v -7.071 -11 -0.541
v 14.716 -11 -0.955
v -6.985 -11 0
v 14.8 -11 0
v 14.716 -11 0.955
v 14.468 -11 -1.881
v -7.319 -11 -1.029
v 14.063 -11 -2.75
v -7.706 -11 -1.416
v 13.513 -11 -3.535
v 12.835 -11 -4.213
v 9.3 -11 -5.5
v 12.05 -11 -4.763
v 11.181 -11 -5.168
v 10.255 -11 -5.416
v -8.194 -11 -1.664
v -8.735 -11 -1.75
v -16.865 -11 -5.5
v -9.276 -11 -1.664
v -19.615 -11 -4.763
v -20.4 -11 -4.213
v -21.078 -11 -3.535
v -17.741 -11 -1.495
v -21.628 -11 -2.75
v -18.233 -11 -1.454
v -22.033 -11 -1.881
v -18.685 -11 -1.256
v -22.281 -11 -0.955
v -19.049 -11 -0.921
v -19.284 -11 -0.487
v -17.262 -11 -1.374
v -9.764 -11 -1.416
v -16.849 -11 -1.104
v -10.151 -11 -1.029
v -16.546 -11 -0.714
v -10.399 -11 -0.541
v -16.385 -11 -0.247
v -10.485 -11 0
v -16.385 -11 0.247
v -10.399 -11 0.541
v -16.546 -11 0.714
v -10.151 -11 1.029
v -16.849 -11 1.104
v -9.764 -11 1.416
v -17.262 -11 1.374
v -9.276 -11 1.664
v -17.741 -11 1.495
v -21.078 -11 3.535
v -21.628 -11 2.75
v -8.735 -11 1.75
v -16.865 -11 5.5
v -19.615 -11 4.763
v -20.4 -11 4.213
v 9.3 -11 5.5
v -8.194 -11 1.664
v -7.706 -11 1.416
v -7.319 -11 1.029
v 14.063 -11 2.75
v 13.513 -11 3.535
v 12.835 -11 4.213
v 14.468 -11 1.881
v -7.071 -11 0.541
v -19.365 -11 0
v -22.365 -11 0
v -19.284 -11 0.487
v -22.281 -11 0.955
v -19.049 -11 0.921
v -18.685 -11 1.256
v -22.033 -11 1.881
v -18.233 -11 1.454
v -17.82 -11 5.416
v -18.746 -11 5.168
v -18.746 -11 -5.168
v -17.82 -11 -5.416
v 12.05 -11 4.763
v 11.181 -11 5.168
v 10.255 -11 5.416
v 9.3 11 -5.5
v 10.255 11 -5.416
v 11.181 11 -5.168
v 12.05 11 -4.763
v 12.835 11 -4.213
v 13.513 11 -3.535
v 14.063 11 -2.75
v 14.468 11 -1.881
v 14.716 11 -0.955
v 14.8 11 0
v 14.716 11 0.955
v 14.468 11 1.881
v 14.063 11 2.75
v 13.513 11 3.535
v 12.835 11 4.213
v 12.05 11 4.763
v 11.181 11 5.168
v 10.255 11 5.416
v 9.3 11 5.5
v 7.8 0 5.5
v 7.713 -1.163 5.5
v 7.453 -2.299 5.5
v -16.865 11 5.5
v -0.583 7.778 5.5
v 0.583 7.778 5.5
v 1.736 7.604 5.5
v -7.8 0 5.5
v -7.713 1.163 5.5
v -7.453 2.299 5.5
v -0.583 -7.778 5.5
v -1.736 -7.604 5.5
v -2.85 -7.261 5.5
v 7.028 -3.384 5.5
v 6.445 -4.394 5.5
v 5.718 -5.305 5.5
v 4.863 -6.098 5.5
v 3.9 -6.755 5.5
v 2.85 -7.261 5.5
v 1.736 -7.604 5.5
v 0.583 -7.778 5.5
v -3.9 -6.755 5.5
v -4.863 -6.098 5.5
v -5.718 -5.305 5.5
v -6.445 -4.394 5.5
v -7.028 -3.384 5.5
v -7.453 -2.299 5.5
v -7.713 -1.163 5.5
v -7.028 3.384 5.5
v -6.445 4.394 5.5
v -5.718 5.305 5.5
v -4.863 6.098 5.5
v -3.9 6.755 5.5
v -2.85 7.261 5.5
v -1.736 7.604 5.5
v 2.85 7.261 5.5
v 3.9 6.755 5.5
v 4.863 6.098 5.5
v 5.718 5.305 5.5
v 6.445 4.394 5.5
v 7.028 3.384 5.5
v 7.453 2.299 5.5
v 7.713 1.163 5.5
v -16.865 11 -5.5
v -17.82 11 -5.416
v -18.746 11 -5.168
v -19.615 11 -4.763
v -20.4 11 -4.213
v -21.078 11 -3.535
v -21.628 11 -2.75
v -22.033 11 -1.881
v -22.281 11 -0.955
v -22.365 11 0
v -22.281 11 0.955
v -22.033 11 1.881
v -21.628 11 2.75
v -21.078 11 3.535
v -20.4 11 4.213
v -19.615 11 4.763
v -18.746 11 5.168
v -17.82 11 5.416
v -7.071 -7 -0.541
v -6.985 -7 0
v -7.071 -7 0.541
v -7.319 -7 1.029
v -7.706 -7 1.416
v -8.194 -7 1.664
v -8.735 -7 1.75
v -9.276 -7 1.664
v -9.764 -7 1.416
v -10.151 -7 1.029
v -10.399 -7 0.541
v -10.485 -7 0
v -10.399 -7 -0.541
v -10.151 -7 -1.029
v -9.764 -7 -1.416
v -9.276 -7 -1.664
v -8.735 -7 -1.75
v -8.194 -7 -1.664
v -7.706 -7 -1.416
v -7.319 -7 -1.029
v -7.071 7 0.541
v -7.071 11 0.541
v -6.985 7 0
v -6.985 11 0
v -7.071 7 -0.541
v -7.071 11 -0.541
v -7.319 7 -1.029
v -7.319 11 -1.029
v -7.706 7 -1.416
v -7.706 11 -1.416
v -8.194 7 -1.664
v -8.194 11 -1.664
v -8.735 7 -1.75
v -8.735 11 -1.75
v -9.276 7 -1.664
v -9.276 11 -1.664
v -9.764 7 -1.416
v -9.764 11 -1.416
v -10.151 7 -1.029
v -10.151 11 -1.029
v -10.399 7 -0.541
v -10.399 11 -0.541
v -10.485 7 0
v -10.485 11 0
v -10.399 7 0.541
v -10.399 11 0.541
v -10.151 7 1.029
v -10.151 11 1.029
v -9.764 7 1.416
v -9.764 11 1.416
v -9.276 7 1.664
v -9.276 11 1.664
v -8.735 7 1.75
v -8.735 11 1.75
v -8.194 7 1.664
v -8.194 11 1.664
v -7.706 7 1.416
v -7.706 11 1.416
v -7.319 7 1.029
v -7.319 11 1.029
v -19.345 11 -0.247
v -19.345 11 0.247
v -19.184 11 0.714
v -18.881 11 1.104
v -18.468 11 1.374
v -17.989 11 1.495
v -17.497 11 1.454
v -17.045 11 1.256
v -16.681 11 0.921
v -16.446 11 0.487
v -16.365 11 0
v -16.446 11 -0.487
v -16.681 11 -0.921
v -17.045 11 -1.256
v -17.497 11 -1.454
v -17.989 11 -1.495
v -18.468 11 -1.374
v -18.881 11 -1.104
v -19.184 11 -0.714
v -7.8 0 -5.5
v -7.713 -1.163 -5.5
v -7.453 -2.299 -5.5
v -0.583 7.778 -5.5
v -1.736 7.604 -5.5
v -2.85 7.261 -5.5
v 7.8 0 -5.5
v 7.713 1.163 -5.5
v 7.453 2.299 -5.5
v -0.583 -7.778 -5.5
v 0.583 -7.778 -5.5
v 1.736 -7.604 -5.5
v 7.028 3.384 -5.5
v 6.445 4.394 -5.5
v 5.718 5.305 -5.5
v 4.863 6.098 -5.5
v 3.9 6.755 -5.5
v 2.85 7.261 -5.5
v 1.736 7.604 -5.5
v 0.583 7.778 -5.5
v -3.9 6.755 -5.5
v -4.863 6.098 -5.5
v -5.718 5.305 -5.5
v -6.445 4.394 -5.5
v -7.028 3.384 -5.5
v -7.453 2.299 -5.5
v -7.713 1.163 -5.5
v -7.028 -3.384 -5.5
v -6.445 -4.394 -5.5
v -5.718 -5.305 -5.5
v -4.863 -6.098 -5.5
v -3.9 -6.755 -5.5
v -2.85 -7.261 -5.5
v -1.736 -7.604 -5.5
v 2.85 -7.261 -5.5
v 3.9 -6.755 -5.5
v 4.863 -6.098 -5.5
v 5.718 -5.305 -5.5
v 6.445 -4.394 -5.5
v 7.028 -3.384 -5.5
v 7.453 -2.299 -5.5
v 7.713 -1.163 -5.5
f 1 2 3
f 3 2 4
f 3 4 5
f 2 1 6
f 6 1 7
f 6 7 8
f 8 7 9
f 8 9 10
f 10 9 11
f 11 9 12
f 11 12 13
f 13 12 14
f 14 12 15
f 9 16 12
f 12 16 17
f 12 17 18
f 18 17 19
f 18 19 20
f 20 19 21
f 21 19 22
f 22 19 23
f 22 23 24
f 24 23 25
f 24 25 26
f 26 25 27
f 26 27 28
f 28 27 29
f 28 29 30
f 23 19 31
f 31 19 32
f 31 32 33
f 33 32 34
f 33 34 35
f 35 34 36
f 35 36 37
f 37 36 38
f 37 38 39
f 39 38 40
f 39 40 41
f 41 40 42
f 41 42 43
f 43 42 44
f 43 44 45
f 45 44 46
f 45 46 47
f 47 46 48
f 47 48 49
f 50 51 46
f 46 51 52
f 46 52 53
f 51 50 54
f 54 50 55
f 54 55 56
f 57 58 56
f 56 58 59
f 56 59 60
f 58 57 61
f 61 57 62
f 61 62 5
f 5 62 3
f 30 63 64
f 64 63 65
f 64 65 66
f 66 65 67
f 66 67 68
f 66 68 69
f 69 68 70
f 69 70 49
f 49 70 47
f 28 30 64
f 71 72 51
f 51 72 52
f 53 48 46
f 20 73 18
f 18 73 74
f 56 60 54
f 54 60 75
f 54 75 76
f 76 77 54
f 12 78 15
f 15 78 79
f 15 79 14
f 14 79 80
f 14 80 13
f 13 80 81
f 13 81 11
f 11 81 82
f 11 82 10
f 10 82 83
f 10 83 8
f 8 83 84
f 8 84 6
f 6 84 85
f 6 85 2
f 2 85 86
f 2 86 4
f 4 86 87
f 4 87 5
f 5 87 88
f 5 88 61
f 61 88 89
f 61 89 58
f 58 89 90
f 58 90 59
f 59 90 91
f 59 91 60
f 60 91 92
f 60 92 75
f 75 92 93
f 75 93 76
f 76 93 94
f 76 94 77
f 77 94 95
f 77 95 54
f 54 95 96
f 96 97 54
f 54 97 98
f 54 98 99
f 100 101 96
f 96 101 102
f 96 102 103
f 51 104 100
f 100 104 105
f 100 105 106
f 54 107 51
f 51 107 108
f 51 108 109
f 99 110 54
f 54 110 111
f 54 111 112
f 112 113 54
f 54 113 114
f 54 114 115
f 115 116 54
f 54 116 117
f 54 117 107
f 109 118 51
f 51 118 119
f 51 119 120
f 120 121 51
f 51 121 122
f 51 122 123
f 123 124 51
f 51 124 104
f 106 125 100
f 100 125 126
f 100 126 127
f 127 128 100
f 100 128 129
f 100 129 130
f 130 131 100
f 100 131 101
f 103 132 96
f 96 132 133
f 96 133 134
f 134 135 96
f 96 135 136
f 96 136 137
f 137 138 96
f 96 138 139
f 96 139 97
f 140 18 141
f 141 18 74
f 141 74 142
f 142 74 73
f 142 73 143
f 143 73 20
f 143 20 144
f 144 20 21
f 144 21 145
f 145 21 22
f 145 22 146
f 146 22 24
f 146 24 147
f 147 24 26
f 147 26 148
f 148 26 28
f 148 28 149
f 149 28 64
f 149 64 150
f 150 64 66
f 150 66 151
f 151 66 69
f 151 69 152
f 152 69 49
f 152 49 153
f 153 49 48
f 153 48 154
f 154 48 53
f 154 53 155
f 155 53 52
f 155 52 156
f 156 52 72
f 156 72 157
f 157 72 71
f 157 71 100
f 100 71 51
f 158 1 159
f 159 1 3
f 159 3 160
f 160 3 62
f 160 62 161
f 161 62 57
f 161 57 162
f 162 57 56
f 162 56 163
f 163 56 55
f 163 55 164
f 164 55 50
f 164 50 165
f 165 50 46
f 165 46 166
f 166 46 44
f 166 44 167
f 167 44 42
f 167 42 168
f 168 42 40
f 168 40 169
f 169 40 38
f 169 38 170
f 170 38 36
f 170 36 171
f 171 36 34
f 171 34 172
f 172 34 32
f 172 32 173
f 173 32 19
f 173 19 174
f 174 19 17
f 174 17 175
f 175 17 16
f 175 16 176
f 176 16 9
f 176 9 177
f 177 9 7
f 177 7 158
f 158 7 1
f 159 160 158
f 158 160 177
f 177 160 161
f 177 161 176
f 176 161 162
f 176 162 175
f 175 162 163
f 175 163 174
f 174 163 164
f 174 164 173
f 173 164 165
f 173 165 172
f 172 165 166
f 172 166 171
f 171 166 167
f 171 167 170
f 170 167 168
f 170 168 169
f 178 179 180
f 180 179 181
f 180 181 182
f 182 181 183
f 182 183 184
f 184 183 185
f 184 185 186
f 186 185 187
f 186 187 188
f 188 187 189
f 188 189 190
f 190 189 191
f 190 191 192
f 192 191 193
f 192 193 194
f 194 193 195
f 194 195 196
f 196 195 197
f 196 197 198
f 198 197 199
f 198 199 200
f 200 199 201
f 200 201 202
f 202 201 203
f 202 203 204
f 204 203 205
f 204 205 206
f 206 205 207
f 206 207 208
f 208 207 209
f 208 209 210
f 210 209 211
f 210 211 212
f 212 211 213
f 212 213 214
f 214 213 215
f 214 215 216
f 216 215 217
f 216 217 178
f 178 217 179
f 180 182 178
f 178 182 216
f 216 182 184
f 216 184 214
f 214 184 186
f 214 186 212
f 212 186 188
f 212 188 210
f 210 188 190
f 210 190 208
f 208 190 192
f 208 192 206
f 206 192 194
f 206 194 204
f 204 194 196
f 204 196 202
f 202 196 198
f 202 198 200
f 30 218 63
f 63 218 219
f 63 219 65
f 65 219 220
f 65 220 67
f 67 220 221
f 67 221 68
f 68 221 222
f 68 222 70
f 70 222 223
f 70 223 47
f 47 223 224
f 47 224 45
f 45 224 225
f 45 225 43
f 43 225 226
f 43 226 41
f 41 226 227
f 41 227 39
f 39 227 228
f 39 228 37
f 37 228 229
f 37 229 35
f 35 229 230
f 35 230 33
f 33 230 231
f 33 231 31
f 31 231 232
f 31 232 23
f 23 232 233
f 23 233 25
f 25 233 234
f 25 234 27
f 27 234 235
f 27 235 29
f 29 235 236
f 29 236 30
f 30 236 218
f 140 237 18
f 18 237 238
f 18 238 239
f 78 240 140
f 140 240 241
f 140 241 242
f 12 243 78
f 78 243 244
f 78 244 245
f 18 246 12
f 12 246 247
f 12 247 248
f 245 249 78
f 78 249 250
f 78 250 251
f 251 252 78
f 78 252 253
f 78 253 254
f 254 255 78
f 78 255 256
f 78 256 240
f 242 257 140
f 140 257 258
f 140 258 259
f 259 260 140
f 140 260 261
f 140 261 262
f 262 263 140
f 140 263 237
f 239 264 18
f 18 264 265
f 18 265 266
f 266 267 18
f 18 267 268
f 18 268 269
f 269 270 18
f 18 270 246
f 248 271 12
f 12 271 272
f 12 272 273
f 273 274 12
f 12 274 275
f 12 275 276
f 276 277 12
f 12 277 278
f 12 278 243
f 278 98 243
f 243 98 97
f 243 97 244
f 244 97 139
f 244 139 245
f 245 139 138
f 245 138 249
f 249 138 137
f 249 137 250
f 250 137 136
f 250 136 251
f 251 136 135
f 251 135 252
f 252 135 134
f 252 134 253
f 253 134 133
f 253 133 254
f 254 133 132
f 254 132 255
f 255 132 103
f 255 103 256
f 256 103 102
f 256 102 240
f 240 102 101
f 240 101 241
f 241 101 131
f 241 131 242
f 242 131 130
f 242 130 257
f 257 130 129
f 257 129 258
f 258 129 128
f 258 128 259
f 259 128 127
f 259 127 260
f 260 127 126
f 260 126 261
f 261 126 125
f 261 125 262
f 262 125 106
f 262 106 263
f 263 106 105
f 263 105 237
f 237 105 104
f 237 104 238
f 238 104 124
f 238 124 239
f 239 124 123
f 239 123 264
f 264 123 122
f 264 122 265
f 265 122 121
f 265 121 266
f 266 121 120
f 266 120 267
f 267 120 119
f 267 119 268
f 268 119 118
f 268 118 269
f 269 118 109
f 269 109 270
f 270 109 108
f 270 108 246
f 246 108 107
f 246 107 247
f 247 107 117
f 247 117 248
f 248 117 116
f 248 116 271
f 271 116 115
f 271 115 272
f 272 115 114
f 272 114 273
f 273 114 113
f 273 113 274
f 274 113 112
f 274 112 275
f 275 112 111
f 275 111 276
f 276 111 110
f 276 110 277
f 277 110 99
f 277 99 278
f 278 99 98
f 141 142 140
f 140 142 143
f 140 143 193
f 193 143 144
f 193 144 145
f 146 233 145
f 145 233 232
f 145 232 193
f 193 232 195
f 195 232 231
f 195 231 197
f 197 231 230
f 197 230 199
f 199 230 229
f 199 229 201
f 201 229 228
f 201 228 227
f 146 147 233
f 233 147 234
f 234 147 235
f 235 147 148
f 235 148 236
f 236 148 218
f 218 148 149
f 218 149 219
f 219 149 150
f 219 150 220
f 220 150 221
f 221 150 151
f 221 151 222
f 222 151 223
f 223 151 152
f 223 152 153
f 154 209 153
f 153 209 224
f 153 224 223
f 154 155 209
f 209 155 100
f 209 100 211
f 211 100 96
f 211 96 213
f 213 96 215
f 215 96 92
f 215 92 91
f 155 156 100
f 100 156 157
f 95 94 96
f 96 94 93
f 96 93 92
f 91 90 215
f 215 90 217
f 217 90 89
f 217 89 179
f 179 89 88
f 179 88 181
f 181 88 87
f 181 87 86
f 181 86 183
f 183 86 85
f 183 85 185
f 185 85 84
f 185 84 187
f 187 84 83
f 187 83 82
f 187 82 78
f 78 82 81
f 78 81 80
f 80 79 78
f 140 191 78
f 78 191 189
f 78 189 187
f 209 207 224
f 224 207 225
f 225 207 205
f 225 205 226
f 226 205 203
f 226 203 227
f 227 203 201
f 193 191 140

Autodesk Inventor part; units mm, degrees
ref_plane "YZ Plane" through (0, 0, 0) normal (1, 0, 0) x (0, 1, 0)
ref_plane "XZ Plane" through (0, 0, 0) normal (0, 1, 0) x (-1, 0, 0)
ref_plane "XY Plane" through (0, 0, 0) normal (0, 0, 1) x (1, 0, 0)
sketch "Sketch1" plane through (0, 0, 0) normal (0, 0, 1) x (1, 0, 0)
  circle A0 centre (0, 0) radius 7.8
  line L0 (0, 0) -> (-8.735, 0) construction
  line L1 (0, 0) -> (-17.865, 0) construction
  line L2 (-8.735, 0) -> (-8.735, 11) construction
  line L3 (-8.735, 0) -> (-8.735, -11) construction
  line L4 (-17.865, 0) -> (-17.865, -11) construction
  line L5 (-17.865, 0) -> (-17.865, 11) construction
  line L6 (7.8, 0) -> (14.8, 0) construction
  line L7 (-17.865, 0) -> (-22.365, 0) construction
  line L8 (-22.365, -11) -> (14.8, -11)
  line L9 (14.8, -11) -> (14.8, 11)
  line L10 (14.8, 11) -> (-22.365, 11)
  line L11 (-22.365, 11) -> (-22.365, -11)
  dimension "d0" = 15.6
  dimension "d1" = 8.735
  dimension "d2" = 17.865
  dimension "d3" = 11
  dimension "d4" = 11
  dimension "d5" = 11
  dimension "d6" = 11
  dimension "d7" = 7
  dimension "d8" = 4.5
  dimension "d23" = 37.165
extrude "Extrusion1" add sketch "Sketch1" along normal mid plane 11
sketch "Sketch2" plane through (-22.365, 11, 5.5) normal (0, 1, 0) x (1, 0, 0)
  line L0 (0, 11) -> (0, 0) projected
  line L1 (0, 5.5) -> (4.5, 5.5)
  line L2 (4.5, 5.5) -> (13.63, 5.5)
  circle A0 centre (4.5, 5.5) radius 1.5
  circle A1 centre (13.63, 5.5) radius 1.75
  point P0 (22.365, 5.5)
  dimension "d11" = 4.5
  dimension "d13" = 9.13
  dimension "d14" = 3
  dimension "d15" = 3.5
extrude "Extrusion2" cut sketch "Sketch2" against normal up to next contours A0 L2 L1 | L1 L2 A0
extrude "Extrusion3" cut sketch "Sketch2" against normal blind 4 contours A1
sketch "Sketch3" plane through (-22.365, -11, 5.5) normal (0, -1, 0) x (1, 0, 0)
  circle A0 centre (13.63, -5.5) radius 1.75 projected
  circle A1 centre (13.63, -5.5) radius 1.75
  point P0 (22.365, -5.5)
extrude "Extrusion4" cut sketch "Sketch3" against normal blind 4
fillet "Fillet1" radius 5.5 4 edges at (-22.365, 0, 5.5) (14.8, 0, 5.5) (14.8, 0, -5.5) (-22.365, 0, -5.5)
equation "\"d23\" = d2 + d7 + 0.5 * d0 + d8"
properties part number "Reworked - PlateArmClip22mm"
